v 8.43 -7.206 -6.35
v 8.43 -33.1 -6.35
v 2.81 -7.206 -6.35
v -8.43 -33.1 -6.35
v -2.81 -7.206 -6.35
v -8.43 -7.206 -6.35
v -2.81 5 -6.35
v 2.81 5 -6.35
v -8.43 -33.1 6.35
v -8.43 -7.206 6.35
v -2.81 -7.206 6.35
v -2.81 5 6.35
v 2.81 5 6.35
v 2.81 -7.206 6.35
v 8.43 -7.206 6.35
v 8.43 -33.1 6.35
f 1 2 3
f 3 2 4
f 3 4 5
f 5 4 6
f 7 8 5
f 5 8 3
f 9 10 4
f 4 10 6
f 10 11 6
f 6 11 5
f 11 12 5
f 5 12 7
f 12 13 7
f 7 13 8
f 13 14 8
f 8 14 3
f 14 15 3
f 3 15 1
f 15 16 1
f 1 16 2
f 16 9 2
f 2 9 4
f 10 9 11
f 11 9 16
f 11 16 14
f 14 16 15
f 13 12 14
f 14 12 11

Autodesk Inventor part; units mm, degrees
ref_plane "YZ Plane" through (0, 0, 0) normal (1, 0, 0) x (0, 1, 0)
ref_plane "XZ Plane" through (0, 0, 0) normal (0, 1, 0) x (-1, 0, 0)
sketch "Sketch1" plane through (0, 0, 0) normal (0, 0, 1) x (1, 0, 0)
  line L0 (-2.81, 5) -> (2.81, 5)
  line L1 (2.81, 5) -> (2.81, -33.1)
  line L2 (2.81, -33.1) -> (-2.81, -33.1)
  line L3 (-2.81, -33.1) -> (-2.81, 5)
  line L4 (-2.81, -33.1) -> (-8.43, -33.1)
  line L5 (-8.43, -33.1) -> (-8.43, -7.2065)
  line L6 (-8.43, -7.2065) -> (-2.81, -7.2065)
  line L7 (-2.81, -7.2065) -> (-2.81, -33.1)
  line L8 (-13.3844, -4.6707) -> (3.9886, -4.5258) construction
  line L9 (4.1365, -22.2635) -> (-13.2364, -22.4084) construction
  line L10 (-18.4107, -1.5425) -> (-18.3842, -4.7124) construction
  line L11 (42.6603, -9.7914) -> (42.6338, -6.6215) projected
  line L12 (0, -40.72) -> (0, 12.62) construction
  line L13 (2.81, -33.1) -> (8.43, -33.1)
  line L14 (8.43, -33.1) -> (8.43, -7.2065)
  line L15 (8.43, -7.2065) -> (2.81, -7.2065)
  line L16 (2.81, -7.2065) -> (2.81, -33.1)
  point P0 (0, 0)
  point P1 (42.647, -8.2065)
  dimension "d0" = 1
  dimension "d1" = 1
  dimension "d2" = 1
  dimension "d3" = 38.1
  dimension "d4" = 1
ref_plane "Work Plane1" through (6.228, -54, -6.35) normal (0, 0, -1) x (0, 1, 0)
extrude "Extrusion1" add sketch "Sketch1" along normal mid plane 12.7
properties part number "ForearmActuatorConnectorBoundingBox"
